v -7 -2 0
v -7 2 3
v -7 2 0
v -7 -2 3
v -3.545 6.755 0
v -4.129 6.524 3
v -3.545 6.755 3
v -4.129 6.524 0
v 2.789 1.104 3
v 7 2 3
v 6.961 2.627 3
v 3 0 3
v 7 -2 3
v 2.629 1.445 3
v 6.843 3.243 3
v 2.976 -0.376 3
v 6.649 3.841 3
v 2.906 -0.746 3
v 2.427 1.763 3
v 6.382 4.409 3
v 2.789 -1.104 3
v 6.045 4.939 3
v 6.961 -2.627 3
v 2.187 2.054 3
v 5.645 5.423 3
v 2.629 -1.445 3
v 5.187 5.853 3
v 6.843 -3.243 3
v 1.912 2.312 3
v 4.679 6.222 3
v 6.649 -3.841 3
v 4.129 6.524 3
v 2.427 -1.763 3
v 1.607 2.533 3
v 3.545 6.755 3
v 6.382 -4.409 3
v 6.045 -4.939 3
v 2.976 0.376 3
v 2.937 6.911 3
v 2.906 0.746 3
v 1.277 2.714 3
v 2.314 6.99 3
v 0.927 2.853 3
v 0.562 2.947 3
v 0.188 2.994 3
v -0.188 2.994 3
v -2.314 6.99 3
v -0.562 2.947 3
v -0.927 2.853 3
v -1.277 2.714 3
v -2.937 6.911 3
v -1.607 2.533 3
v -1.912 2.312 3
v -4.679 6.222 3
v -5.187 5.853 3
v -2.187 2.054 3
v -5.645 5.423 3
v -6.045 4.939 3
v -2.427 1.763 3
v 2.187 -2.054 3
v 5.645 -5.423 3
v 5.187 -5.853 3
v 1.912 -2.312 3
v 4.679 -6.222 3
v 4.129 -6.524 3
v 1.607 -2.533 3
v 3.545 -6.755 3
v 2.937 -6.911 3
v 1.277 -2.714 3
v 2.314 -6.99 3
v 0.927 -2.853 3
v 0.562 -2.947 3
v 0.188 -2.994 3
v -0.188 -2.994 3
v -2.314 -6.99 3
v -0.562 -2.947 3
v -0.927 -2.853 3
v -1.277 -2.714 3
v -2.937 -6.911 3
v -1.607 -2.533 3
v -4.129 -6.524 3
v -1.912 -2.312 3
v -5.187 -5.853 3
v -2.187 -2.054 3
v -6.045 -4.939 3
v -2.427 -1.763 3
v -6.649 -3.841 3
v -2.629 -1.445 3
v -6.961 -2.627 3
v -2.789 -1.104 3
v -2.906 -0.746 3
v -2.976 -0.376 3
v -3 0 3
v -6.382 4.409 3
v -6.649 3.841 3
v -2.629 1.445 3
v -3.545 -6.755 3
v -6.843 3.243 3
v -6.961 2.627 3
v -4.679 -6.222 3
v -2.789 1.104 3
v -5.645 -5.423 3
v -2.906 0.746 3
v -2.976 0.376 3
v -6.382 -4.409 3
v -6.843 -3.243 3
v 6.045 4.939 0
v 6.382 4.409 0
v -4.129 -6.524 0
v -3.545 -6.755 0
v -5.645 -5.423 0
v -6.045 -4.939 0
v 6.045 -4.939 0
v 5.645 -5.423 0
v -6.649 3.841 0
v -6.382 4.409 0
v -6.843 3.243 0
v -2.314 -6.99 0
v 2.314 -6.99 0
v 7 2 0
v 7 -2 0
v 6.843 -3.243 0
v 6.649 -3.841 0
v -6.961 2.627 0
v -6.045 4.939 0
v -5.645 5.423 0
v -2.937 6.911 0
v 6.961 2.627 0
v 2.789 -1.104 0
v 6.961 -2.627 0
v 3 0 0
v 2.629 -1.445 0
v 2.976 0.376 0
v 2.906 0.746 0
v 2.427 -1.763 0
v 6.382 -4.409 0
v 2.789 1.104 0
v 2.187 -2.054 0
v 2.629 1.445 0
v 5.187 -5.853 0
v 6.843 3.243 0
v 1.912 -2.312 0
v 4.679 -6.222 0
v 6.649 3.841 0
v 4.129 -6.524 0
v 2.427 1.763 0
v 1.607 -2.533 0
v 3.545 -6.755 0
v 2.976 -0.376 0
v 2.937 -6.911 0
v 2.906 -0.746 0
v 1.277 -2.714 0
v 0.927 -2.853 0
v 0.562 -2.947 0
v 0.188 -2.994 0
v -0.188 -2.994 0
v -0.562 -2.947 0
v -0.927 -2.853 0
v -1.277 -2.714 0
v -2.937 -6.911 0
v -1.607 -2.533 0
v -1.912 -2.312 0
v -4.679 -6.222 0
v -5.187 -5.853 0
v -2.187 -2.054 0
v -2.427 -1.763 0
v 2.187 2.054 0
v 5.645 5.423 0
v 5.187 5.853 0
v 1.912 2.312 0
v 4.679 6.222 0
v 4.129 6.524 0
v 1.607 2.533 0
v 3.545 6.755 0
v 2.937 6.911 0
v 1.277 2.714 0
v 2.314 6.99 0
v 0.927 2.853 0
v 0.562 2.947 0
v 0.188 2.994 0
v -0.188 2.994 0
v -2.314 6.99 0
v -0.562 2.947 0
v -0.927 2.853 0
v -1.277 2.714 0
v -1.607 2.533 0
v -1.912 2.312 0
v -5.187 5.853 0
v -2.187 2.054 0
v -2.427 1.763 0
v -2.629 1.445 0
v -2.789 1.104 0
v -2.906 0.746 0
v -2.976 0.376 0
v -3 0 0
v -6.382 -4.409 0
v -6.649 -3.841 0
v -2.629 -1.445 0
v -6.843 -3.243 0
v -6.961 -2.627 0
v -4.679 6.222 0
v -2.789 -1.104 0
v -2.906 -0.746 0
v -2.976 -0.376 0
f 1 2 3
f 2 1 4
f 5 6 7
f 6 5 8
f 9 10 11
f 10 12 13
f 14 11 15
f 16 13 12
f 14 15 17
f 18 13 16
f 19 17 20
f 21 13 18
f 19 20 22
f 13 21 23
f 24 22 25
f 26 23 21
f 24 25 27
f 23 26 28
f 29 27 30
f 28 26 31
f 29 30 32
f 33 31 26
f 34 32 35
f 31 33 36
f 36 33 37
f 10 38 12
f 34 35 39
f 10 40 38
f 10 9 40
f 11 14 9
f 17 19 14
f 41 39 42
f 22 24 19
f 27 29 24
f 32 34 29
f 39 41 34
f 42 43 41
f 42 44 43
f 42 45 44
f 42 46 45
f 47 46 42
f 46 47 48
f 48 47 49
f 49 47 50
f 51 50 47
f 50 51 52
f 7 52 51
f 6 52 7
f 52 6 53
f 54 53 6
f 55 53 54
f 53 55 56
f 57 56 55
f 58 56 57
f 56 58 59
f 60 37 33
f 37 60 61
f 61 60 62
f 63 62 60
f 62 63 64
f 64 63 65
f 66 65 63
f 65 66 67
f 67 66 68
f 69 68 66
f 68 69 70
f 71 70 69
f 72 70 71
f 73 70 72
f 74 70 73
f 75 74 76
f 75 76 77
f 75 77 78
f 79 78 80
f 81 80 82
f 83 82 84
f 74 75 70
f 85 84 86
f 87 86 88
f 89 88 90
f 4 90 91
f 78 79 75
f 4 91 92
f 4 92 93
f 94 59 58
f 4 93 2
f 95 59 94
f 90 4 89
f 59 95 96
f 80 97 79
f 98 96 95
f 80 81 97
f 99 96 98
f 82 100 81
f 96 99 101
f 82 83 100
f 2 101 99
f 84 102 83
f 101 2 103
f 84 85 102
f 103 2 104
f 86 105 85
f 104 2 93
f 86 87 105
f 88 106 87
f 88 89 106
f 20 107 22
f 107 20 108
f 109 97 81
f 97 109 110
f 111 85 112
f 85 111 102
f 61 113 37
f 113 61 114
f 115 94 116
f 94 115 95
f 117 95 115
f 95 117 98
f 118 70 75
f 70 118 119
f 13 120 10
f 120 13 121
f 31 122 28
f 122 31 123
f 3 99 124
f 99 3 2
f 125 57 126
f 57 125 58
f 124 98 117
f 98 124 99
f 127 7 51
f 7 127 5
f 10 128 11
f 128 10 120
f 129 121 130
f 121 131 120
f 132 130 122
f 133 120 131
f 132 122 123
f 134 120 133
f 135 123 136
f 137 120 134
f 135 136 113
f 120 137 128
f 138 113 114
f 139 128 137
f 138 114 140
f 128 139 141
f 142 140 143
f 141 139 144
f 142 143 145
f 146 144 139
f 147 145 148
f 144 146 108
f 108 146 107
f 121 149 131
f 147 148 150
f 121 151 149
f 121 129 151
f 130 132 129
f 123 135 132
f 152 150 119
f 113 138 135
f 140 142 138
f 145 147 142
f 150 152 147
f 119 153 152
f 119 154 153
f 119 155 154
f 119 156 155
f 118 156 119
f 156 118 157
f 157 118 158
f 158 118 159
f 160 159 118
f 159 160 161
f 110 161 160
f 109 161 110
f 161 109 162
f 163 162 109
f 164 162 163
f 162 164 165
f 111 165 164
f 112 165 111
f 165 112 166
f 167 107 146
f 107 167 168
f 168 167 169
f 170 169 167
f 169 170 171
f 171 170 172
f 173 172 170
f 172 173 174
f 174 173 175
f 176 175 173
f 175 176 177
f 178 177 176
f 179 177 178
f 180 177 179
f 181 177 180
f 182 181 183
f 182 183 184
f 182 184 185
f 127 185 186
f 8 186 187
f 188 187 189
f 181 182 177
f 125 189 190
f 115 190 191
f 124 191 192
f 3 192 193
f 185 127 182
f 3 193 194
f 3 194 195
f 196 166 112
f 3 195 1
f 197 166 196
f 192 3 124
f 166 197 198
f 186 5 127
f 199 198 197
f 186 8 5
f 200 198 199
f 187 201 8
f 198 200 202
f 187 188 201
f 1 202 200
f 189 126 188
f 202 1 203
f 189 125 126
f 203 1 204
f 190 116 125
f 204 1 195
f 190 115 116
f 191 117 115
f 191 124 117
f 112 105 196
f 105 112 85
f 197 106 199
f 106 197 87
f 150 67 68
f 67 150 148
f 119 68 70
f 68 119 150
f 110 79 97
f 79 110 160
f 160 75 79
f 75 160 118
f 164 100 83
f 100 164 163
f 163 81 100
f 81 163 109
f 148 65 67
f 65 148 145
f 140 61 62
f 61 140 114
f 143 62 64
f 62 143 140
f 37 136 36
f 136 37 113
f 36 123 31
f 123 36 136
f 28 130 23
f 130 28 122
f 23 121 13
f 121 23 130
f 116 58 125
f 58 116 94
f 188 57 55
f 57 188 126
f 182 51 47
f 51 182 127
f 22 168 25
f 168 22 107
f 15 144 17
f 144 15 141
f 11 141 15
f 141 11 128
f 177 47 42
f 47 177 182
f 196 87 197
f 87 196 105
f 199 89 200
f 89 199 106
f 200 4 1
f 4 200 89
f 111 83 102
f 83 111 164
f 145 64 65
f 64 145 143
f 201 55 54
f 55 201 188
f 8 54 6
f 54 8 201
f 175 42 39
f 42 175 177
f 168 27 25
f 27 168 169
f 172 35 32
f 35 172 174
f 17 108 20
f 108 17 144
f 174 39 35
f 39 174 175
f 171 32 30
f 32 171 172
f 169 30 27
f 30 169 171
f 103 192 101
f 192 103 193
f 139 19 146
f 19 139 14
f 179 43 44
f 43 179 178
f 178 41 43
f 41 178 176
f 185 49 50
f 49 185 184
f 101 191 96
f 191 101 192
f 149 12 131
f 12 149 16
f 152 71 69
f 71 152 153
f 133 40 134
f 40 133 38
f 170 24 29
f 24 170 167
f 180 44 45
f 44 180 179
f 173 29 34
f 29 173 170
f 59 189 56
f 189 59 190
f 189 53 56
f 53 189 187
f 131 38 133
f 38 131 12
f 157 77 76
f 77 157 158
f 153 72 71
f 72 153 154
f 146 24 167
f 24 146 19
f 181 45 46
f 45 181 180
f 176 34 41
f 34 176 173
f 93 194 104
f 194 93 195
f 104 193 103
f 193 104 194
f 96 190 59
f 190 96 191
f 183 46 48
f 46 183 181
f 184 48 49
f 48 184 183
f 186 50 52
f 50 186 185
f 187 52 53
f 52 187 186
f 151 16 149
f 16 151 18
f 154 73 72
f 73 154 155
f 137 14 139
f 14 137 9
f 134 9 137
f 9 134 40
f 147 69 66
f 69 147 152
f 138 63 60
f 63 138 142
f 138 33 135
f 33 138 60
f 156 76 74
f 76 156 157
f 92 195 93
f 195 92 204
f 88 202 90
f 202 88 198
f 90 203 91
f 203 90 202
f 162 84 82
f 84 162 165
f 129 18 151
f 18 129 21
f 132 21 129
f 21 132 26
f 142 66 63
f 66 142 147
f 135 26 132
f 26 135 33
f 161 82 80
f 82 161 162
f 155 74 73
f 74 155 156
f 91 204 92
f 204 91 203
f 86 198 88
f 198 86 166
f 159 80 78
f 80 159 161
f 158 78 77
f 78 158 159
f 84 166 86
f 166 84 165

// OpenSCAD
// Generated by SolidPython 1.1.3 on 2023-03-13 21:42:51
$fn = 50;


difference() {
	union() {
		translate(v = [0, 0, 0]) {
			rotate(a = [0, 0, 0]) {
				hull() {
					translate(v = [-2.0000000000, 2.0000000000, 0]) {
						rotate(a = [0, 0, 0]) {
							translate(v = [0, 0, 0]) {
								rotate(a = [0, 0, 0]) {
									cylinder(h = 3, r = 5);
								}
							}
						}
					}
					translate(v = [2.0000000000, 2.0000000000, 0]) {
						rotate(a = [0, 0, 0]) {
							translate(v = [0, 0, 0]) {
								rotate(a = [0, 0, 0]) {
									cylinder(h = 3, r = 5);
								}
							}
						}
					}
					translate(v = [-2.0000000000, -2.0000000000, 0]) {
						rotate(a = [0, 0, 0]) {
							translate(v = [0, 0, 0]) {
								rotate(a = [0, 0, 0]) {
									cylinder(h = 3, r = 5);
								}
							}
						}
					}
					translate(v = [2.0000000000, -2.0000000000, 0]) {
						rotate(a = [0, 0, 0]) {
							translate(v = [0, 0, 0]) {
								rotate(a = [0, 0, 0]) {
									cylinder(h = 3, r = 5);
								}
							}
						}
					}
				}
			}
		}
	}
	union() {
		translate(v = [0.0000000000, 0.0000000000, 0]) {
			rotate(a = [0, 0, 0]) {
				translate(v = [0, 0, -50]) {
					rotate(a = [0, 0, 0]) {
						cylinder(h = 100, r = 3.0000000000);
					}
				}
			}
		}
	}
}
/***********************************************
*********      SolidPython code:      **********
************************************************
 
from solid import *
import os
import subprocess

import oomB

import opsc_library_gen

mode = "laser"
#mode = "3d_print"

defined_objects = {}

radius_dict = {}
countersunk_dict = {}


def set_mode(m):
    global mode
    mode = m
    radius_dict['M6'] = 6.5/2
    radius_dict['M3'] = 3.3/2
    if mode == "laser":
        radius_dict['M6'] = 6/2
        radius_dict['M3'] = 3/2

    countersunk_dict['M3'] = {}
    countersunk_dict['M3']['little_rad'] = radius_dict['M3']
    countersunk_dict['M3']['big_rad'] = (5.5+0.6)/2
    if mode == "laser":
        countersunk_dict['M3']['big_rad'] = (4.75+0.6)/2
        countersunk_dict['M3']['little_rad'] = (4.75+0.6)/2

    countersunk_dict['M3']['height'] = 1.7


def opsc_make_object(filename, objects, save_type="none",resolution=50, layers = 1, tilediff = 200, mode="laser", overwrite=True):
    if overwrite or not os.path.exists(filename):
        set_mode(mode)
        save_type = save_type.lower()
        os.makedirs(os.path.dirname(filename), exist_ok=True)
        final_object = opsc_get_object(objects, mode = mode)
        # Save the final object to the specified filename    
        scad_render_to_file(final_object, filename, file_header='$fn = %s;' % resolution, include_orig_code=True)
        if save_type == "all":
            saveToAll(filename)
        elif save_type == "dxf":
            saveToDxf(filename)
        if mode == "laser":
            filename_laser = filename.replace(".scad","-flat.scad")
            scad_render_to_file(getLaser(final_object, layers=layers, tilediff=tilediff), filename_laser, file_header='$fn = %s;' % resolution, include_orig_code=True)
            if save_type == "all":
                saveToAll(filename_laser)
            elif save_type == "dxf":
                saveToDxf(filename_laser)


def opsc_get_object(objects, mode = "laser"):
    # Create the solidpython objects only include the positive objects and if they don't have inclusion or their inclusion is either all or mode
    # Initialize an empty list to store the results
    positive_objects = []

    # Iterate over the "objects" list
    for obj in objects:
        # Check if the current object has a "type" key with a value of "positive"
        if obj['type'] == 'positive':
            # Check if the current object has an "inclusion" key and its value matches "mode",
            # or if the current object does not have an "inclusion" key at all
            if not 'inclusion' in obj or obj['inclusion'] == "all" or obj['inclusion'] == mode:
                # Call the "get_opsc_item" function with the current object as an argument
                opsc_item = get_opsc_item(obj)
                # Add the result to the "positive_objects" list
                positive_objects.append(opsc_item)
# Initialize an empty list to store the results
    negative_objects = []

    # Iterate over the "objects" list
    for obj in objects:
        # Check if the current object has a "type" key with a value of "negative"
        if obj['type'] == 'negative':
            # Check if the current object has an "inclusion" key and its value matches "mode",
            # or if the current object does not have an "inclusion" key at all
            if not 'inclusion' in obj or obj['inclusion'] == "all" or obj['inclusion'] == mode:
                # Call the "get_opsc_item" function with the current object as an argument
                opsc_item = get_opsc_item(obj)
                # Add the result to the "negative_objects" list
                negative_objects.append(opsc_item)
    
    #positive_objects = [get_opsc_item(obj) for obj in objects if obj['type'] == 'positive']
    #negative_objects = [get_opsc_item(obj) for obj in objects if obj['type'] == 'negative']
    # Union the positive objects
    positive_object = union()(*positive_objects)
    # Union the negative objects
    negative_object = union()(*negative_objects)
    # Create the final object by subtracting the negative objects from the positive objects
    return difference()(positive_object, negative_object)

def get_opsc_item(params):
    # A dictionary to map radius string values to numerical values
    #radius_dict = {'small': 5, 'medium': 10, 'large': 15}
    # An array of function names for basic shapes
    basic_shapes = ['cube', 'sphere', 'cylinder']
    
    # An array of function names for other shapes
    other_shapes = ['hole', 'slot', 'rounded_rectangle', 'countersunk', 'polyg']
    


    # Convert radius to r if present, and remove radius from the params dictionary
    if 'radius' in params:
        if isinstance(params['radius'], str):
            # Use the radius_dict to map the radius string value to a numerical value
            params['r'] = radius_dict[params['radius']]
        else:
            params['r'] = params['radius']
        del params['radius']
    

    # Check if the object type is a basic shape
    if params['shape'] in basic_shapes:
        # Remove shape and unexpected dictionary values
        allowed_keys = {'size', 'r', 'r1', 'r2', 'd', 'h', 'rw', 'rh', 'dw', 'dh'}
        shape_params = {k: v for k, v in params.items() if k in allowed_keys}

        #params['m'] = "#"
        ###split for adding modifier
        try:
            m = params['m']
            func = globals()[params['shape']]
            return_value = get_opsc_transform(params,func(**shape_params))
            return_value = (return_value).set_modifier(m)
            return return_value
        except KeyError as e:
            return get_opsc_transform(params,globals()[params['shape']](**shape_params))
        
    elif params['shape'] == 'polygon':
        # Remove shape and unexpected dictionary values
        h  = params['height']
        allowed_keys = {'points'}
        shape_params = {k: v for k, v in params.items() if k in allowed_keys}

        # Call the corresponding function for the shape parameter, using ** notation to pass the shape_params dictionary as keyword arguments
        params["rot"] = [0,0,0]        
        try:
            m = params['m']
            func = globals()[params['shape']]
            return_value = get_opsc_transform(params,linear_extrude(h)(globals()[params['shape']](**shape_params)))
            return_value = (return_value).set_modifier(m)
            return return_value
        except KeyError as e:
            return_value = get_opsc_transform(params,linear_extrude(h)(globals()[params['shape']](**shape_params)))
            return_value = (return_value)
            return return_value


    # If the object type is not a basic shape, check if it's a defined object or one of the other shapes
    elif params['shape'] in other_shapes:
        # Call the corresponding function for the shape parameter, passing the params dictionary as an argument
        p2 = copy.deepcopy(params)
        p2["pos"] = [0,0,0]
        return get_opsc_transform(params,globals()[params['shape']](p2))
    
    # If the object is not a basic shape or a defined object, try to import it from a .scad file
    else:
        obj = defined_objects[params['shape']]
        return get_opsc_transform(params,obj)

def get_opsc_transform(params, solid_obj):
    # Rotate the object based on the 'rot' field in the params dictionary, or the 'rotX', 'rotY', and 'rotZ' fields if 'rot' is not present
    rot = params.get('rot', [])
    if rot:
        rotX, rotY, rotZ = rot
    else:
        rotX = params.get('rotX', 0)
        rotY = params.get('rotY', 0)
        rotZ = params.get('rotZ', 0)
    solid_obj = rotate([rotX, rotY, rotZ])(solid_obj)

    # Translate the object based on the 'pos' field in the params dictionary, or the 'x', 'y', and 'z' fields if 'pos' is not present
    pos = params.get('pos', [])
    if pos:
        x, y, z = pos
    else:
        x = params.get('x', 0)
        y = params.get('y', 0)
        z = params.get('z', 0)
    solid_obj = translate([x, y, z])(solid_obj)
    return solid_obj


import random

def opsc_easy_array(type, shape, repeats, pos_start, shift_arr, **kwargs):
    for i in range(0,3):
        repeats.append(1)
        pos_start.append(0)
        shift_arr.append(0)
    return_objects = []

    for x in range(0,repeats[0]):
        for y in range(0,repeats[1]):
            for z in range(0,repeats[2]):
                return_objects.append(opsc_easy(type, shape, pos=[pos_start[0]+x*shift_arr[0],pos_start[1]+y*shift_arr[1],pos_start[2]+z*shift_arr[2]], **kwargs))
    return return_objects                



def opsc_easy(type, shape, **kwargs):
    obj = {
        'type': type,
        'shape': shape
    }
    for param in ['size', 'r', 'r1', 'r2', 'd', 'h', 'rw', 'rh', 'dw', 'dh', 'pos', 'x', 'y', 'z', 'rot', 'rotX', 'rotY', 'rotZ', "w", "inclusion", 'sides', 'height', "m"]:
        if param in kwargs:
            obj[param] = kwargs[param]
    return obj

def hole(params):
    p2 = copy.deepcopy(params)  
    # Check if the radius is a string and replace it with the corresponding value from the dictionary
    if isinstance(p2['r'], str):
        p2['r'] = radius_dict[p2['r']]
    
    # Set the height to 100 if not specified
    if 'h' not in p2:
        p2['h'] = 100
        p2["pos"] = [0,0,-50]
    p2["center"] = True
    # Create the cylinder object
    p2["shape"] = "cylinder"
    p2["type"] = "positive"

    return get_opsc_item(p2)

import copy

def countersunk(params):
    p2 = copy.deepcopy(params)
    counter_rad = p2['r']
    p2['r'] = radius_dict[p2['r']]
    hp = copy.deepcopy(p2)
    hp["type"] = "positive"
    hp["shape"] = "hole"
    del hp["rot"]
    hol = get_opsc_item(hp)
    
    cp = copy.deepcopy(p2)
    cp["h"] = countersunk_dict[counter_rad]["height"]
    cp["r2"] = countersunk_dict[counter_rad]["little_rad"]
    cp["r1"] = countersunk_dict[counter_rad]["big_rad"]
    del cp["r"]
    del cp["rot"]
    cp["type"] = "positive"
    cp["shape"] = "cylinder"
    cp["pos"] = [0,0,0]

    top = get_opsc_item(cp)
    return union()(hol,top)



def slot(params):  
    p2 = copy.deepcopy(params) 
    if isinstance(p2['r'], str):
        p2['r'] = radius_dict[p2['r']]
    p2["type"] = "positive"
    p2["shape"] = "hole"
    del p2["rot"]
    p2["pos"] = [0,0,0]
    left = copy.deepcopy(p2)
    right = copy.deepcopy(p2)
    left["pos"][0] = p2["w"] / 2 - p2["r"] 
    
    right["pos"][0] = -p2["w"] / 2 + p2["r"] 
    pass
    leftObj = get_opsc_item(left)
    rightObj = get_opsc_item(right)
    return hull()(leftObj, rightObj)

def rounded_rectangle(params):   
    p2 = copy.deepcopy(params) 
    p2["h"] = p2["size"][2]
    p2["pos"] = p2.get("pos", [0, 0, 0]) 
    p2["type"] = "positive"
    p2["shape"] = "hole"
    p2["pos"] = [0,0,0]
    
    if 'rot' in p2:
        del p2["rot"]   
    if 'r' not in p2:
        p2["r"] = 5 
    tl = copy.deepcopy(p2)
    tr = copy.deepcopy(p2)
    bl = copy.deepcopy(p2)
    br = copy.deepcopy(p2)
    tl["pos"][0] = -(p2["size"][0] - p2["r"]*2)/2
    tl["pos"][1] = (p2["size"][1] - p2["r"]*2)/2
    tr["pos"][0] = (p2["size"][0] - p2["r"]*2)/2
    tr["pos"][1] = (p2["size"][1] - p2["r"]*2)/2
    bl["pos"][0] = -(p2["size"][0] - p2["r"]*2)/2
    bl["pos"][1] = -(p2["size"][1] - p2["r"]*2)/2
    br["pos"][0] = (p2["size"][0] - p2["r"]*2)/2
    br["pos"][1] = -(p2["size"][1] - p2["r"]*2)/2
    del tl["size"]
    del tr["size"]
    del bl["size"]
    del br["size"]
    tlo = get_opsc_item(tl)
    tro = get_opsc_item(tr)
    blo = get_opsc_item(bl)
    bro = get_opsc_item(br)    
    return hull()(tlo, tro, blo, bro)



def polyg(params):
    p2 = copy.deepcopy(params) 
    p2["type"] = "positive"
    p2["shape"] = "polygon"
    p2["pos"] = [0,0,0]
    sides = p2["sides"]
    radius = p2["r"]    
    angles = [i * 360 / sides for i in range(sides)]
    points = regular_polygon(sides, radius)
    
    p2["points"] = points
    return get_opsc_item(p2)

import math

def regular_polygon(num_sides, radius):
    # Calculate the angle between each side
    angle = 2 * math.pi / num_sides

    # Calculate the points of the polygon
    points = []
    for i in range(num_sides):
        x = radius * math.cos(i * angle)
        y = radius * math.sin(i * angle)
        points.append((x, y))
    return points

def import_scad_object(filename):
    # Import the .scad file and convert it to a solidpython object
    #filename = "parts"
    obj = import_scad(filename)
    return obj.main()



import os
import solid as solidpython

# A dictionary to store the defined objects


def load_scad_objects():
    opsc_library_gen.gen_library(defined_objects)

import random

def test(num_objects):
    objects = []
    for i in range(num_objects):
        # Choose a random shape
        #shape = random.choice(['cube', 'sphere', 'cylinder', 'hole', 'slot', "rounded_rectangle"])
        shape = random.choice(["rounded_rectangle"])

        # Choose a random type
        type = random.choice(['positive', 'negative'])
        
        # Create an empty object dictionary
        obj = {'shape': shape, 'type': type}
        
        # Set shape-specific parameters
        if obj['shape'] in ['cube']:
            obj['size'] =  [random.uniform(5, 15), random.uniform(5, 15), random.uniform(5, 15)]
        if obj['shape'] in ['rounded_rectangle']:
            obj['size'] =  [random.uniform(5, 15), random.uniform(5, 15), random.uniform(5, 15)]
            obj['r'] = random.uniform(0.5, 5)
        elif obj['shape'] == 'sphere':
            obj['r'] = random.uniform(5, 15)
        elif obj['shape'] in ['cylinder', 'hole']:
            obj['r'] = random.uniform(0.5, 5)
            obj['h'] = random.uniform(5, 15)
        elif obj['shape'] == 'slot':
            obj['r'] = random.uniform(0.5, 5)
            obj['h'] = random.uniform(5, 15)
            obj['w'] = random.uniform(5, 15)
        
        # Set a random position and rotation
        obj['pos'] = [random.uniform(-20, 20), random.uniform(-20, 20), random.uniform(-20, 20)]
        obj['rot'] = [random.uniform(-180, 180), random.uniform(-180, 180), random.uniform(-180, 180)]
        
        # Add the object to the list
        objects.append(obj)
    return objects

####### old file saving
def saveToAll(fileIn):
    saveToStl(fileIn)
    saveToDxf(fileIn)
    saveToPng(fileIn)
    saveToSvg(fileIn)

def saveToDxf(fileIn, fileOut="", copy_to_laser=True):
    if fileOut == "":
        fileOut = fileIn.replace(".scad",".dxf")
    saveToFile(fileIn, fileOut)


    
def saveToPng(fileIn, fileOut="",extra="--render"):
    if fileOut == "":
        fileOut = fileIn.replace(".scad",".png")
    saveToFile(fileIn, fileOut)

def saveToStl(fileIn, fileOut=""):
    if fileOut == "":
        fileOut = fileIn.replace(".scad",".stl")
    saveToFile(fileIn, fileOut)
    
def saveToSvg(fileIn, fileOut=""):
    if fileOut == "":
        fileOut = fileIn.replace(".scad",".svg")
    saveToFile(fileIn, fileOut)

def saveToFile(fileIn, fileOut,extra=""):
    #extra = extra + " --colorscheme Tomorrow"

    launchStr = 'openscad -o "' + fileOut + '"' + extra + ' "' + fileIn + '"'
    if ".png" in fileOut:
        launchStr = launchStr + " --render"
    print("            saveToFile launch string: " + launchStr)
    subprocess.run(launchStr)
    x=0

def getLaser(final_object,start=1.5,layers=1,thickness=3,tilediff=200):
        rv= []

        for x in range(layers):
            rv.append(translate([0,x*tilediff,0])(
                    projection()(
                        intersection()(translate([-500,-500,start+x*thickness])(cube(size=[1000,1000,0.1])),
                            final_object
                        )
                    )
            )
            )
            
        return union()(rv)

set_mode("laser")
load_scad_objects() 
 
************************************************/
